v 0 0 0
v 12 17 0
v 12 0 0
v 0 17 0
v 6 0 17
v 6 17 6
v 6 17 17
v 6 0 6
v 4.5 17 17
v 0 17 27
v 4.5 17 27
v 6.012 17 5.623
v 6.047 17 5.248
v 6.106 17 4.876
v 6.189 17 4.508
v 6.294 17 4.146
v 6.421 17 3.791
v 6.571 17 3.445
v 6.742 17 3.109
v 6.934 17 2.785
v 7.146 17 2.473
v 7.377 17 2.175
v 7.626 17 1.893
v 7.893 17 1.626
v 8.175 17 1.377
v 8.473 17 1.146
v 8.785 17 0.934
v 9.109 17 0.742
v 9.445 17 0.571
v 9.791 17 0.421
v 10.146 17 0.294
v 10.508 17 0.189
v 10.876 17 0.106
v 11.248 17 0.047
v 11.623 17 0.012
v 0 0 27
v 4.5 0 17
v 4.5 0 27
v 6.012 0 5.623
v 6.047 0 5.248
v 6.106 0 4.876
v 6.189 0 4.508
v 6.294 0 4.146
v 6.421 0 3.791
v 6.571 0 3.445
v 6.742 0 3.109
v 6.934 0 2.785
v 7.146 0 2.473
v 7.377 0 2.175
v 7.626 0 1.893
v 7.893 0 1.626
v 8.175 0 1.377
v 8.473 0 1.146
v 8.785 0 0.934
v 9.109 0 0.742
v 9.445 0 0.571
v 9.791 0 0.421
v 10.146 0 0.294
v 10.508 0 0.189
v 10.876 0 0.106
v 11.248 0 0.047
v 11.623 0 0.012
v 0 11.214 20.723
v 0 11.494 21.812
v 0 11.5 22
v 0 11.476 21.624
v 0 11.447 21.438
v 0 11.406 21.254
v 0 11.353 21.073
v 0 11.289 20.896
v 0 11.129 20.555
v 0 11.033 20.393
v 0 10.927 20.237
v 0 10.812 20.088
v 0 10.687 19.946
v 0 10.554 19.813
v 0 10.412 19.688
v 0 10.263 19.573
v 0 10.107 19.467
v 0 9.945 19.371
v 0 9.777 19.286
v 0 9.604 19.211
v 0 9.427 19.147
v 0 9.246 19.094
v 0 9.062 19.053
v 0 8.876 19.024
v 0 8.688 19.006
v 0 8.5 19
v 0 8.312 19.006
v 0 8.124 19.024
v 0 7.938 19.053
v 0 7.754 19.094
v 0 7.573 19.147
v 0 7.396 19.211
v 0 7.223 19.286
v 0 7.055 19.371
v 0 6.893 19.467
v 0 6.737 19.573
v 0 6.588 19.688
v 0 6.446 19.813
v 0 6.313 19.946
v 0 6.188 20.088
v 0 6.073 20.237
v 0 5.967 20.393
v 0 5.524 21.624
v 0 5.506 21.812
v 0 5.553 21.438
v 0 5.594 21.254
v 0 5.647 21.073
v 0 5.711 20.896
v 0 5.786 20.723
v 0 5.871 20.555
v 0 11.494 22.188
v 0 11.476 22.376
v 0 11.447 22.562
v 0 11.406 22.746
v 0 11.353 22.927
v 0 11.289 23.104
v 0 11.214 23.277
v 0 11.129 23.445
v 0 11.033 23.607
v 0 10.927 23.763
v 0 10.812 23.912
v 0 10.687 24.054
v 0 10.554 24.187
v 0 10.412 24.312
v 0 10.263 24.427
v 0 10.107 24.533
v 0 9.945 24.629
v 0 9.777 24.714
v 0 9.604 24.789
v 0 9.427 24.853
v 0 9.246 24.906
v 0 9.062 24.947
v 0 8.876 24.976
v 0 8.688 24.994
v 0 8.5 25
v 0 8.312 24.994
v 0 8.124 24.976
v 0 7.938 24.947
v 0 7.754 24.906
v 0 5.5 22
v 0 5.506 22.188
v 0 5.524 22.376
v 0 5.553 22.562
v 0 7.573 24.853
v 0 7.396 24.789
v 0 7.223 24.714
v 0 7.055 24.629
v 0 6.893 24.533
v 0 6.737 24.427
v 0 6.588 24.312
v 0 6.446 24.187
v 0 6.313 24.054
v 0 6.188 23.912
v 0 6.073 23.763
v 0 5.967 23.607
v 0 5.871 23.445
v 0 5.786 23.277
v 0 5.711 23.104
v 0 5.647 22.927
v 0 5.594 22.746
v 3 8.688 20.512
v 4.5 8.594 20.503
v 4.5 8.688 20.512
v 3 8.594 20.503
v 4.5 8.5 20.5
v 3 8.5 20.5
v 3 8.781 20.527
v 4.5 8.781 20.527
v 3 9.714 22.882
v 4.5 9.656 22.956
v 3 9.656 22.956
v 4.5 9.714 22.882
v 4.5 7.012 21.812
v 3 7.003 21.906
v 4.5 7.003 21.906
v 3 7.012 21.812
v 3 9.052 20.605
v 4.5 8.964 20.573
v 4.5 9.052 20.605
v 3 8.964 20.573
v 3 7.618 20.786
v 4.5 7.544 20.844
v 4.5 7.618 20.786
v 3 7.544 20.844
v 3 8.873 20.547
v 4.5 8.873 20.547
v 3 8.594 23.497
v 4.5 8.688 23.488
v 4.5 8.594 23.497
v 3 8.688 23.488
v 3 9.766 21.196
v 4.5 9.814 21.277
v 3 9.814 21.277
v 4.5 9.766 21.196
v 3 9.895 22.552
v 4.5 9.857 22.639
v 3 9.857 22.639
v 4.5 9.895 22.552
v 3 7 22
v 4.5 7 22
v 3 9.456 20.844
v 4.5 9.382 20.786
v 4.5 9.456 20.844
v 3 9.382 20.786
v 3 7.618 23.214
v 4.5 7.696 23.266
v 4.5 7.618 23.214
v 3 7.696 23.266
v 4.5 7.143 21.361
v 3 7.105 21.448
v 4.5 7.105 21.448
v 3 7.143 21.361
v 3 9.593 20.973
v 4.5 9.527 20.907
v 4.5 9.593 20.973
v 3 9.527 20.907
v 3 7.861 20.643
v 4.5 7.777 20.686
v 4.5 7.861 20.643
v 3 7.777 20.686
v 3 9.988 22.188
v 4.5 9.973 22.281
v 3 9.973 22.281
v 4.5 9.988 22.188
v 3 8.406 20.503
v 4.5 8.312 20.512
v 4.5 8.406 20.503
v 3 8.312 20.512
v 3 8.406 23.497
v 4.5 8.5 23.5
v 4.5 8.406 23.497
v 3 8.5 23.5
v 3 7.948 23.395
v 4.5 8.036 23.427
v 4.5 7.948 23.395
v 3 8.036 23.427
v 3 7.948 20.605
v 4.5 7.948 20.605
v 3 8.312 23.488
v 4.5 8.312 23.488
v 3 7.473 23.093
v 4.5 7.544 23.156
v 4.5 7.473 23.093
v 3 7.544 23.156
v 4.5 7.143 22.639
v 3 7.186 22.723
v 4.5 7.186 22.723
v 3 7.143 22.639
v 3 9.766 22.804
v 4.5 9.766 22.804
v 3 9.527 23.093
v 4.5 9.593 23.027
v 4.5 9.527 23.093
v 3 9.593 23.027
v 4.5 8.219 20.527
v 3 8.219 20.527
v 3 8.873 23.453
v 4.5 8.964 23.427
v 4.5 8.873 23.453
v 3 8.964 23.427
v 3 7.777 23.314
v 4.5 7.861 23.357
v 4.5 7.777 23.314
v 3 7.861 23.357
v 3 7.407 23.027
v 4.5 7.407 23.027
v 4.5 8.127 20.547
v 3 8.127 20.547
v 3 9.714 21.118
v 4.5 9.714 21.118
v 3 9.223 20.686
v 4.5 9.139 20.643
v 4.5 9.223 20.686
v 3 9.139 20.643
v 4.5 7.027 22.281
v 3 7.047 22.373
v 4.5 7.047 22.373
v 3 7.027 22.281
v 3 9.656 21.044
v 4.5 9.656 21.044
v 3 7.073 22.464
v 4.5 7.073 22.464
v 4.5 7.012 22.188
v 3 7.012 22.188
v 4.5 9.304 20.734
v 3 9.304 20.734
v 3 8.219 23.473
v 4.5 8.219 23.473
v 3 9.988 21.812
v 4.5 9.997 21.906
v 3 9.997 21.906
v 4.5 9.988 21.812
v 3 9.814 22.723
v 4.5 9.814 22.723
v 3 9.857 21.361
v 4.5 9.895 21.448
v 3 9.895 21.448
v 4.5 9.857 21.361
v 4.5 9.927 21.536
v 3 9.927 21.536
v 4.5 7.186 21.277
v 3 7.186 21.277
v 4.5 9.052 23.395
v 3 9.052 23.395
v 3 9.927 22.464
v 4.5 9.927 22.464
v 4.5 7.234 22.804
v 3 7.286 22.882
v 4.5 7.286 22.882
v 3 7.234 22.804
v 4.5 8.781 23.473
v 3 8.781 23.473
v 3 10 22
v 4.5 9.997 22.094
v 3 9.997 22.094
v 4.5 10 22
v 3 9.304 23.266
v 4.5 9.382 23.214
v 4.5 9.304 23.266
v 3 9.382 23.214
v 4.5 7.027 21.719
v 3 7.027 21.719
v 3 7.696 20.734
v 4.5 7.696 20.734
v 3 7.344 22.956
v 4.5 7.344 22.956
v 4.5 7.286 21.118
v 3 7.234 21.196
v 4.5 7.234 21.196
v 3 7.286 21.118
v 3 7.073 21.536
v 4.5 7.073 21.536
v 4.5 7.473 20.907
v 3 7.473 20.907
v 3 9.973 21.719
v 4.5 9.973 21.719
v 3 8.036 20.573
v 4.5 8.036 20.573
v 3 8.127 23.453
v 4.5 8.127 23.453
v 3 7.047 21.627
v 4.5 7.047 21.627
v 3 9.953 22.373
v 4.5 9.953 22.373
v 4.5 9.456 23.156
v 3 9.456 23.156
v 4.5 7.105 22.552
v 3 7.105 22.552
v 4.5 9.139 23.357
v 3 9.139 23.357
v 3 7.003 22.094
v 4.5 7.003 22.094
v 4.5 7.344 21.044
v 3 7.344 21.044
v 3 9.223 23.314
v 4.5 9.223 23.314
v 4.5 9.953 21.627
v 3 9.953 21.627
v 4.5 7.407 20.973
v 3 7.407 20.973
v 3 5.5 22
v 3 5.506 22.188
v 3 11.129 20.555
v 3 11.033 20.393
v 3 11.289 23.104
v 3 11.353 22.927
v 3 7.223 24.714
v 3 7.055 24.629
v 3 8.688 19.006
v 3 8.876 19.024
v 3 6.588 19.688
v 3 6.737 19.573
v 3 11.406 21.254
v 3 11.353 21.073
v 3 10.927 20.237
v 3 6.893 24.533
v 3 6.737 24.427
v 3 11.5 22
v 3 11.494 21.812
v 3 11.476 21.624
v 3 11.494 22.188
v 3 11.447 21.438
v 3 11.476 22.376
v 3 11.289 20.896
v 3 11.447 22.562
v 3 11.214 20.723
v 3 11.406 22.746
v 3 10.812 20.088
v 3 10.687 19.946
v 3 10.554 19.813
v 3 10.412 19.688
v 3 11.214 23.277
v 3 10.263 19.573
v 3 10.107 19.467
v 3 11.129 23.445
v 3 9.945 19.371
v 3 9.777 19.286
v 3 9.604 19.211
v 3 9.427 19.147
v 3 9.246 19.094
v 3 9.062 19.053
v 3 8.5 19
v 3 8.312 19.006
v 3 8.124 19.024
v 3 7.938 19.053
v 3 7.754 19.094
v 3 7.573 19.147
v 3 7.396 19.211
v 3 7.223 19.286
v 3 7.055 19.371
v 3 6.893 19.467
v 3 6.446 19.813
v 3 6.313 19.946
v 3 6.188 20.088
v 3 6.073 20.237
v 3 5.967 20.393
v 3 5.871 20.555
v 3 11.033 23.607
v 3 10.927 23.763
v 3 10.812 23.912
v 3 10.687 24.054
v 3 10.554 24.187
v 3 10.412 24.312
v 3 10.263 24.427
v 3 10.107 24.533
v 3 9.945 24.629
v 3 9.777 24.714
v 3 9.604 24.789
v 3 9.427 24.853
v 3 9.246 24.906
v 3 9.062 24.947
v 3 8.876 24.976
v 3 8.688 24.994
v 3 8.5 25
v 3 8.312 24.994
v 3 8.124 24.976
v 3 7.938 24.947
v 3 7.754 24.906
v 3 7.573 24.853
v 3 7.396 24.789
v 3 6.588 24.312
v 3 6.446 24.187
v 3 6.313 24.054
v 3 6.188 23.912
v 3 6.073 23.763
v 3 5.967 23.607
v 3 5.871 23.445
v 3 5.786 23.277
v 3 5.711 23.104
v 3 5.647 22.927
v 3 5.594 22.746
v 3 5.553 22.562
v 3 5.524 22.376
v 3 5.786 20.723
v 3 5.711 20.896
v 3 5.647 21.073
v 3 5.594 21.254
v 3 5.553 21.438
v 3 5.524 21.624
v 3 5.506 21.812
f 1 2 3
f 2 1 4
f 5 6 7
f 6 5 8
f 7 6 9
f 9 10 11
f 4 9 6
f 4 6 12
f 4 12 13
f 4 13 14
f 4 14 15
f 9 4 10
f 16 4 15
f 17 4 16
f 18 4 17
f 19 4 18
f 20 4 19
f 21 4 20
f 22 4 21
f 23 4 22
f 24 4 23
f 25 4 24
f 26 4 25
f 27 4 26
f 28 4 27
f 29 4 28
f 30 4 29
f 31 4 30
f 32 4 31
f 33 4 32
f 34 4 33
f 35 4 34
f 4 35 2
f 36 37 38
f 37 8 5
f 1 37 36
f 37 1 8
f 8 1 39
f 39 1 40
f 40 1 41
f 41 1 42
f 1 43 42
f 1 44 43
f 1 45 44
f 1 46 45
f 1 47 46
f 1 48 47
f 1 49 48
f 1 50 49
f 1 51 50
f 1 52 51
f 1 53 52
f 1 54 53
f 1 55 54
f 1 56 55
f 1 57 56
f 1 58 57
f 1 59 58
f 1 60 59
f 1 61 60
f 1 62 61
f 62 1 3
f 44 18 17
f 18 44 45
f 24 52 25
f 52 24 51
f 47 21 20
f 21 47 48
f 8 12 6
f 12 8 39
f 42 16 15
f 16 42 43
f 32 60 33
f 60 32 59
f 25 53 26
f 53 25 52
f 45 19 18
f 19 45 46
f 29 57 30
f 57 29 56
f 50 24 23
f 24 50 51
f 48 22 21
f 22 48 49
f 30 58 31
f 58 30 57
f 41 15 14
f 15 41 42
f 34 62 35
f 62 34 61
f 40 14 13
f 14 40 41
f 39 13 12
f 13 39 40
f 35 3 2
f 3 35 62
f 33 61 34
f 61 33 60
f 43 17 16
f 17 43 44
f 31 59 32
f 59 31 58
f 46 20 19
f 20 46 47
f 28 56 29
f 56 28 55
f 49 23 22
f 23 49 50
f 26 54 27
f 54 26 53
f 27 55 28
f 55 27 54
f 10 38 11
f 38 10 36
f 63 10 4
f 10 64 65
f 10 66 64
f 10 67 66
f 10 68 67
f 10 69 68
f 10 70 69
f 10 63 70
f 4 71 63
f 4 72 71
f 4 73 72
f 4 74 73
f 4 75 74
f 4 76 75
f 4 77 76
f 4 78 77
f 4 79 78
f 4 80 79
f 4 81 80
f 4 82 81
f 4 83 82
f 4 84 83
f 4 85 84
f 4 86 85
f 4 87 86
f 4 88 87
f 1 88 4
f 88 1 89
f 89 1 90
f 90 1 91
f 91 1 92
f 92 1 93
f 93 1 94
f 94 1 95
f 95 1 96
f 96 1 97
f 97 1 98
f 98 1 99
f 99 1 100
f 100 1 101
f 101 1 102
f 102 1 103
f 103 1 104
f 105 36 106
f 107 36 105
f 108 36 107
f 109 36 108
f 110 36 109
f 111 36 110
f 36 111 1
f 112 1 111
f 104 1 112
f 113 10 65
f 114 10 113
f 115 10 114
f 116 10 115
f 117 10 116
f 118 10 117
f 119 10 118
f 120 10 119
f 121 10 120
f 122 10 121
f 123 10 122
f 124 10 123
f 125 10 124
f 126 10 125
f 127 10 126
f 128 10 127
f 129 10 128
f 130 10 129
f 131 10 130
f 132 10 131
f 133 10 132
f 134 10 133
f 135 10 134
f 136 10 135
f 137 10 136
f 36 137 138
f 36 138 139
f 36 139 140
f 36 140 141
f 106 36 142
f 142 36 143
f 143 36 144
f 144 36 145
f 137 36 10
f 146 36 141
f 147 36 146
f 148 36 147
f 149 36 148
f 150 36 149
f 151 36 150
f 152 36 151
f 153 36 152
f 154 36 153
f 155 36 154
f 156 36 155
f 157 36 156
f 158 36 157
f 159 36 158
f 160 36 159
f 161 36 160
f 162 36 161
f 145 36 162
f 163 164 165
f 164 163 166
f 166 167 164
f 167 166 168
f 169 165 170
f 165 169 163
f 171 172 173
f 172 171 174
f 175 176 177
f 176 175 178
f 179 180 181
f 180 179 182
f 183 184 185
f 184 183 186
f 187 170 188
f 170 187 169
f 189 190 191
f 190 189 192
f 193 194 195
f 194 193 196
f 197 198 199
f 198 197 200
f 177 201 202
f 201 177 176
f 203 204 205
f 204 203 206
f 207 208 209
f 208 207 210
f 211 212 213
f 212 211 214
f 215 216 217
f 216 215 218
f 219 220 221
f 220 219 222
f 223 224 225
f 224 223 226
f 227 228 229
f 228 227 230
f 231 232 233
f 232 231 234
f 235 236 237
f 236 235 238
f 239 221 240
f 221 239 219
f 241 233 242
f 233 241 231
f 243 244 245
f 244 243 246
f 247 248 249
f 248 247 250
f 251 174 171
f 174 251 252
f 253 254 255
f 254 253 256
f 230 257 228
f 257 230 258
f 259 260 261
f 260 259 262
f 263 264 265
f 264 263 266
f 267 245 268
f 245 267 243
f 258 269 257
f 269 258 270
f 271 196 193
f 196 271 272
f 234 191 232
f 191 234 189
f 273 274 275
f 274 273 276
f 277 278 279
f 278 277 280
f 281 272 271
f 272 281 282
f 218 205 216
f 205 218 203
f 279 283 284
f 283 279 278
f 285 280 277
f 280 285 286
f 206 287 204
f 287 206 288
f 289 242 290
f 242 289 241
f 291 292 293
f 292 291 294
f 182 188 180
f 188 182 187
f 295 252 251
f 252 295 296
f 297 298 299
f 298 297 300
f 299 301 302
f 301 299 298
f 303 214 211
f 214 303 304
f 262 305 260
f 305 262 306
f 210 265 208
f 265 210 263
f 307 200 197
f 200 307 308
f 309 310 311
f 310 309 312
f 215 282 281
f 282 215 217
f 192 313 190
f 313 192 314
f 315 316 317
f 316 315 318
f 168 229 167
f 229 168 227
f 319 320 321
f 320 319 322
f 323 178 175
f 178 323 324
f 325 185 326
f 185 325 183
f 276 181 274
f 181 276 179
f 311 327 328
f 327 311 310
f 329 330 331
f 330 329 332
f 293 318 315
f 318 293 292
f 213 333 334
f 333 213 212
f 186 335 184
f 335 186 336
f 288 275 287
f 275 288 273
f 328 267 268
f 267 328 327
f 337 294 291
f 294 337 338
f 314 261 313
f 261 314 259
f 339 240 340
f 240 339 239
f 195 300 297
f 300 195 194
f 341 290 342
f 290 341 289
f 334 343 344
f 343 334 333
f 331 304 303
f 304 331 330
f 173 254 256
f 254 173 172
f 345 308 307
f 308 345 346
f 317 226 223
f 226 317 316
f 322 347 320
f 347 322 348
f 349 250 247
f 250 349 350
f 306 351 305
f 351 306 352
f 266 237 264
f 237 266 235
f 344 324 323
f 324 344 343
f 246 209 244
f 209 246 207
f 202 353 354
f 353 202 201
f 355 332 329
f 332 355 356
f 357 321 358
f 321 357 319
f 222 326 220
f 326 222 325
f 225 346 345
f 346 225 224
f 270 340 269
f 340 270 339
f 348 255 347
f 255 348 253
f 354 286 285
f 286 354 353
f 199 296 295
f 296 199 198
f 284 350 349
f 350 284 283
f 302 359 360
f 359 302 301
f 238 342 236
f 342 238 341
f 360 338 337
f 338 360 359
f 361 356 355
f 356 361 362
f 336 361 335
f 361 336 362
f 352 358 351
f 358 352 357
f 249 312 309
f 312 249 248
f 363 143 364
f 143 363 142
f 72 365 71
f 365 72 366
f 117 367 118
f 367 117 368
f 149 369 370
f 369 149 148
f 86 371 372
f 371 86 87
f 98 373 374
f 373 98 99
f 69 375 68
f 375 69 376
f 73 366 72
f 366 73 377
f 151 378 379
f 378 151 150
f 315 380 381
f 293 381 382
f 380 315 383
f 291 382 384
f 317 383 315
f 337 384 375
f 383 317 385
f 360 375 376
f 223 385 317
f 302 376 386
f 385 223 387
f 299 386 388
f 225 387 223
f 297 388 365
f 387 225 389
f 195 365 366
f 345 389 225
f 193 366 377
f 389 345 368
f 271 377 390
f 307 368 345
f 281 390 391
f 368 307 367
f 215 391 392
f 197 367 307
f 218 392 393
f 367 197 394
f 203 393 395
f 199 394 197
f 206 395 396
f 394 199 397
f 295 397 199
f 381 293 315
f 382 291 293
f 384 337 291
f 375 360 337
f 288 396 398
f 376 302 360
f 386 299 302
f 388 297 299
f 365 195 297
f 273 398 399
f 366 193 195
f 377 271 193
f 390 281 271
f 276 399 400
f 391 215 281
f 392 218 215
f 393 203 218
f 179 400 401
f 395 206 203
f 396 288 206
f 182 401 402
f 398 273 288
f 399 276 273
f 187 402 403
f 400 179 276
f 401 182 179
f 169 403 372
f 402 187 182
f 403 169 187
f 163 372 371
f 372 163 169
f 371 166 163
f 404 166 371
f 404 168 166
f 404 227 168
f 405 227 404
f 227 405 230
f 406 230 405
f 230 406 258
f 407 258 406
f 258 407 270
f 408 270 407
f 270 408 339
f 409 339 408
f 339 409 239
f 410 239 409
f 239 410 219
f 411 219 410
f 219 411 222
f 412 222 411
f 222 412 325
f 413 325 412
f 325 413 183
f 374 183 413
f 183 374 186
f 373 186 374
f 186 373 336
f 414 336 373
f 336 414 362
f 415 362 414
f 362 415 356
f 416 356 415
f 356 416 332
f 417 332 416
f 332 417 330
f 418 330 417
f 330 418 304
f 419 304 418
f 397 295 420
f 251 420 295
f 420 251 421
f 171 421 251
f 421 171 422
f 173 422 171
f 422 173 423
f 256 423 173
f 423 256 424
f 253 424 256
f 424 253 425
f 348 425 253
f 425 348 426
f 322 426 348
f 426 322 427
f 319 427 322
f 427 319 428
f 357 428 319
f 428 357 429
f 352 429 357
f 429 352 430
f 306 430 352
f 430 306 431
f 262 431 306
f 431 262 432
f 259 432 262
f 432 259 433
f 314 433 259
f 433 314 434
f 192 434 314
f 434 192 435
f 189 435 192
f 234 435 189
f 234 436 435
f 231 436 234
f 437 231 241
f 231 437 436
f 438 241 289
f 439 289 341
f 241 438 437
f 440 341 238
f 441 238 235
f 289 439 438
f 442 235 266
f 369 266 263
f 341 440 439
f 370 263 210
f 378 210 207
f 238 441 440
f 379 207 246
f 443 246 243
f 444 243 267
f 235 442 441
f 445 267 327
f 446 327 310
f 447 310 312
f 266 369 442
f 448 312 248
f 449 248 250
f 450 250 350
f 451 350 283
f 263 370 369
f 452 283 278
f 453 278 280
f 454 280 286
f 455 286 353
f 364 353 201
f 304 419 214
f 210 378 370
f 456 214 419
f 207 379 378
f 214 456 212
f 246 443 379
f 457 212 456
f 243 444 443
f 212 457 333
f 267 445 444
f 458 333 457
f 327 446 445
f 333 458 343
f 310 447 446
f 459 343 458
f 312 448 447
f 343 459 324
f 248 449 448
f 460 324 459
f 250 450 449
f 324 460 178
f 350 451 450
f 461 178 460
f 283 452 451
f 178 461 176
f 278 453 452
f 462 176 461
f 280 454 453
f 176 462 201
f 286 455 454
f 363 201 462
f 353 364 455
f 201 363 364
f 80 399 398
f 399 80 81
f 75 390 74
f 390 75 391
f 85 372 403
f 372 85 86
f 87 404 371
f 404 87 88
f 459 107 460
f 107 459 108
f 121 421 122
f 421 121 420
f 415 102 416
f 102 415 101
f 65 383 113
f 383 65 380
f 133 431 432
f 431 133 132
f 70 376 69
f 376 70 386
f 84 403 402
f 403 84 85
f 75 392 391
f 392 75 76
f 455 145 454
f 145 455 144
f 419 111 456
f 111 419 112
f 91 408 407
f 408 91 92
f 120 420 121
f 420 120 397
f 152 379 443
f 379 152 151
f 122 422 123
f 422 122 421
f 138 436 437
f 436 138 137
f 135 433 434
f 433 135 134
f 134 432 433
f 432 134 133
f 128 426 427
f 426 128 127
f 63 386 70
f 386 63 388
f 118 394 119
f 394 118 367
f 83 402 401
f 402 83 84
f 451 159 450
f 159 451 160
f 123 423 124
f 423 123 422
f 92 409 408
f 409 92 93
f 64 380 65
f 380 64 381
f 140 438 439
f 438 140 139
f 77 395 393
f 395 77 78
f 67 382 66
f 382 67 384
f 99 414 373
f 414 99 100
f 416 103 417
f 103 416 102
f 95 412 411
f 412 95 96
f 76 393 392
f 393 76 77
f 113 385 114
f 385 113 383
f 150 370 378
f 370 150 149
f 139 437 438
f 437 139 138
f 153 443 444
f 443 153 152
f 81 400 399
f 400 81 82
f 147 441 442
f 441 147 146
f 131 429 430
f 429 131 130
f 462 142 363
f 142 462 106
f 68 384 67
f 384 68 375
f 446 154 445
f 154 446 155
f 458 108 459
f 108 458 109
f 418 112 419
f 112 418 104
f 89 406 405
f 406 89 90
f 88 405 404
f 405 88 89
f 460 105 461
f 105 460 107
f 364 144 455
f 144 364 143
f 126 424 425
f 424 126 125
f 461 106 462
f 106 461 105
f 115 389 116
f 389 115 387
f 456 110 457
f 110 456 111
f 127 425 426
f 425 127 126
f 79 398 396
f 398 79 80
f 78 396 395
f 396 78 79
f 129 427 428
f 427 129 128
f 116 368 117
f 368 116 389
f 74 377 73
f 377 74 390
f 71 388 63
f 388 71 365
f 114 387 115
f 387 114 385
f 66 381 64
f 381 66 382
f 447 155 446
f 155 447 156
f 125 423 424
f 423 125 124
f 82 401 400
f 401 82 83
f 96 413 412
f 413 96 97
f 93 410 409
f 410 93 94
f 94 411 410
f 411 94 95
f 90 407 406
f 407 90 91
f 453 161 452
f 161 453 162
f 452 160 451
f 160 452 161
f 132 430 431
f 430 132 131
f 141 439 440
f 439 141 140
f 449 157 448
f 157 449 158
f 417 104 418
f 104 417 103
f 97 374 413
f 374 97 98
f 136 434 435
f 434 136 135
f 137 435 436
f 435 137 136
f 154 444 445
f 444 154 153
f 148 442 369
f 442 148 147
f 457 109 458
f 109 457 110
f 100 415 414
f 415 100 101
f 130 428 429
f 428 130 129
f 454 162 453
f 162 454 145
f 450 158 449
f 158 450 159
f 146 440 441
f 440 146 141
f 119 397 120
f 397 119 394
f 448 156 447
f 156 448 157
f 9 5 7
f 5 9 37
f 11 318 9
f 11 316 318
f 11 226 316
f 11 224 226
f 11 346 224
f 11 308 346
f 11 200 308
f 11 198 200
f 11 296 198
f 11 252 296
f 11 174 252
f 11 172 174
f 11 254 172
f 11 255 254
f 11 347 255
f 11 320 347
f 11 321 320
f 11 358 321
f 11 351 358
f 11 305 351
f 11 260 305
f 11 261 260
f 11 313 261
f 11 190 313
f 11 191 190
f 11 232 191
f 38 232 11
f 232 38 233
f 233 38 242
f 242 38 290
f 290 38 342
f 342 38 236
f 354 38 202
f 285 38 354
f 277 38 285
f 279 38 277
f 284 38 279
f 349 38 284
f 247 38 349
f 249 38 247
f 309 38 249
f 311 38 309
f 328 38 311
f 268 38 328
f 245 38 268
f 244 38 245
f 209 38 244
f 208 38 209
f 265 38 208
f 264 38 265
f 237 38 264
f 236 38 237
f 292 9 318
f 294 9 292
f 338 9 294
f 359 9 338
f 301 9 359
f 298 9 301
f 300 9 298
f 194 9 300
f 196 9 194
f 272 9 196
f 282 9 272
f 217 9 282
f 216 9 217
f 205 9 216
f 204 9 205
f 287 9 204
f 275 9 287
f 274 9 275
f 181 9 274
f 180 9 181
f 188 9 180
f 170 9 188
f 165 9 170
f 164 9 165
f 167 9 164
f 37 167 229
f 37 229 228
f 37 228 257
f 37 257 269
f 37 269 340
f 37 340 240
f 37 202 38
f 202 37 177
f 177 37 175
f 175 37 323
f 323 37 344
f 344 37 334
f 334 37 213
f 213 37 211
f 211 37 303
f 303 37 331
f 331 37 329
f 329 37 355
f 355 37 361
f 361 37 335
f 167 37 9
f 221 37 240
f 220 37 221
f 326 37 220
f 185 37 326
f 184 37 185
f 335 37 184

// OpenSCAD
$fn=100; 

module mounting_tab(){
    
    thickness=6;
    height=27;
    width=17;
    
    difference(){
        union(){
            cube([thickness, width, height]);
            
            translate([thickness, 0, 0]){
                difference(){
                    cube([6, width, 6]);
                    rotate([90, 0, 0])
                        translate([6, 6, -8.5])
                            cylinder(r=6, h=17, center=true);
                }
            }
        }
        
        union(){
            rotate([0, 90, 0]){
                translate([-22, 8.5, thickness/2]){
                    cylinder(r=1.5, h=thickness, center=true);
                    translate([0, 0, -1.5]) {
                        cylinder(r=3, h=3, center=true);
                    }
                }
            }
            
            translate([thickness-1.5, 0, height-10])
            cube([1.5, width, 10]);
        }
    }
}

mounting_tab();
